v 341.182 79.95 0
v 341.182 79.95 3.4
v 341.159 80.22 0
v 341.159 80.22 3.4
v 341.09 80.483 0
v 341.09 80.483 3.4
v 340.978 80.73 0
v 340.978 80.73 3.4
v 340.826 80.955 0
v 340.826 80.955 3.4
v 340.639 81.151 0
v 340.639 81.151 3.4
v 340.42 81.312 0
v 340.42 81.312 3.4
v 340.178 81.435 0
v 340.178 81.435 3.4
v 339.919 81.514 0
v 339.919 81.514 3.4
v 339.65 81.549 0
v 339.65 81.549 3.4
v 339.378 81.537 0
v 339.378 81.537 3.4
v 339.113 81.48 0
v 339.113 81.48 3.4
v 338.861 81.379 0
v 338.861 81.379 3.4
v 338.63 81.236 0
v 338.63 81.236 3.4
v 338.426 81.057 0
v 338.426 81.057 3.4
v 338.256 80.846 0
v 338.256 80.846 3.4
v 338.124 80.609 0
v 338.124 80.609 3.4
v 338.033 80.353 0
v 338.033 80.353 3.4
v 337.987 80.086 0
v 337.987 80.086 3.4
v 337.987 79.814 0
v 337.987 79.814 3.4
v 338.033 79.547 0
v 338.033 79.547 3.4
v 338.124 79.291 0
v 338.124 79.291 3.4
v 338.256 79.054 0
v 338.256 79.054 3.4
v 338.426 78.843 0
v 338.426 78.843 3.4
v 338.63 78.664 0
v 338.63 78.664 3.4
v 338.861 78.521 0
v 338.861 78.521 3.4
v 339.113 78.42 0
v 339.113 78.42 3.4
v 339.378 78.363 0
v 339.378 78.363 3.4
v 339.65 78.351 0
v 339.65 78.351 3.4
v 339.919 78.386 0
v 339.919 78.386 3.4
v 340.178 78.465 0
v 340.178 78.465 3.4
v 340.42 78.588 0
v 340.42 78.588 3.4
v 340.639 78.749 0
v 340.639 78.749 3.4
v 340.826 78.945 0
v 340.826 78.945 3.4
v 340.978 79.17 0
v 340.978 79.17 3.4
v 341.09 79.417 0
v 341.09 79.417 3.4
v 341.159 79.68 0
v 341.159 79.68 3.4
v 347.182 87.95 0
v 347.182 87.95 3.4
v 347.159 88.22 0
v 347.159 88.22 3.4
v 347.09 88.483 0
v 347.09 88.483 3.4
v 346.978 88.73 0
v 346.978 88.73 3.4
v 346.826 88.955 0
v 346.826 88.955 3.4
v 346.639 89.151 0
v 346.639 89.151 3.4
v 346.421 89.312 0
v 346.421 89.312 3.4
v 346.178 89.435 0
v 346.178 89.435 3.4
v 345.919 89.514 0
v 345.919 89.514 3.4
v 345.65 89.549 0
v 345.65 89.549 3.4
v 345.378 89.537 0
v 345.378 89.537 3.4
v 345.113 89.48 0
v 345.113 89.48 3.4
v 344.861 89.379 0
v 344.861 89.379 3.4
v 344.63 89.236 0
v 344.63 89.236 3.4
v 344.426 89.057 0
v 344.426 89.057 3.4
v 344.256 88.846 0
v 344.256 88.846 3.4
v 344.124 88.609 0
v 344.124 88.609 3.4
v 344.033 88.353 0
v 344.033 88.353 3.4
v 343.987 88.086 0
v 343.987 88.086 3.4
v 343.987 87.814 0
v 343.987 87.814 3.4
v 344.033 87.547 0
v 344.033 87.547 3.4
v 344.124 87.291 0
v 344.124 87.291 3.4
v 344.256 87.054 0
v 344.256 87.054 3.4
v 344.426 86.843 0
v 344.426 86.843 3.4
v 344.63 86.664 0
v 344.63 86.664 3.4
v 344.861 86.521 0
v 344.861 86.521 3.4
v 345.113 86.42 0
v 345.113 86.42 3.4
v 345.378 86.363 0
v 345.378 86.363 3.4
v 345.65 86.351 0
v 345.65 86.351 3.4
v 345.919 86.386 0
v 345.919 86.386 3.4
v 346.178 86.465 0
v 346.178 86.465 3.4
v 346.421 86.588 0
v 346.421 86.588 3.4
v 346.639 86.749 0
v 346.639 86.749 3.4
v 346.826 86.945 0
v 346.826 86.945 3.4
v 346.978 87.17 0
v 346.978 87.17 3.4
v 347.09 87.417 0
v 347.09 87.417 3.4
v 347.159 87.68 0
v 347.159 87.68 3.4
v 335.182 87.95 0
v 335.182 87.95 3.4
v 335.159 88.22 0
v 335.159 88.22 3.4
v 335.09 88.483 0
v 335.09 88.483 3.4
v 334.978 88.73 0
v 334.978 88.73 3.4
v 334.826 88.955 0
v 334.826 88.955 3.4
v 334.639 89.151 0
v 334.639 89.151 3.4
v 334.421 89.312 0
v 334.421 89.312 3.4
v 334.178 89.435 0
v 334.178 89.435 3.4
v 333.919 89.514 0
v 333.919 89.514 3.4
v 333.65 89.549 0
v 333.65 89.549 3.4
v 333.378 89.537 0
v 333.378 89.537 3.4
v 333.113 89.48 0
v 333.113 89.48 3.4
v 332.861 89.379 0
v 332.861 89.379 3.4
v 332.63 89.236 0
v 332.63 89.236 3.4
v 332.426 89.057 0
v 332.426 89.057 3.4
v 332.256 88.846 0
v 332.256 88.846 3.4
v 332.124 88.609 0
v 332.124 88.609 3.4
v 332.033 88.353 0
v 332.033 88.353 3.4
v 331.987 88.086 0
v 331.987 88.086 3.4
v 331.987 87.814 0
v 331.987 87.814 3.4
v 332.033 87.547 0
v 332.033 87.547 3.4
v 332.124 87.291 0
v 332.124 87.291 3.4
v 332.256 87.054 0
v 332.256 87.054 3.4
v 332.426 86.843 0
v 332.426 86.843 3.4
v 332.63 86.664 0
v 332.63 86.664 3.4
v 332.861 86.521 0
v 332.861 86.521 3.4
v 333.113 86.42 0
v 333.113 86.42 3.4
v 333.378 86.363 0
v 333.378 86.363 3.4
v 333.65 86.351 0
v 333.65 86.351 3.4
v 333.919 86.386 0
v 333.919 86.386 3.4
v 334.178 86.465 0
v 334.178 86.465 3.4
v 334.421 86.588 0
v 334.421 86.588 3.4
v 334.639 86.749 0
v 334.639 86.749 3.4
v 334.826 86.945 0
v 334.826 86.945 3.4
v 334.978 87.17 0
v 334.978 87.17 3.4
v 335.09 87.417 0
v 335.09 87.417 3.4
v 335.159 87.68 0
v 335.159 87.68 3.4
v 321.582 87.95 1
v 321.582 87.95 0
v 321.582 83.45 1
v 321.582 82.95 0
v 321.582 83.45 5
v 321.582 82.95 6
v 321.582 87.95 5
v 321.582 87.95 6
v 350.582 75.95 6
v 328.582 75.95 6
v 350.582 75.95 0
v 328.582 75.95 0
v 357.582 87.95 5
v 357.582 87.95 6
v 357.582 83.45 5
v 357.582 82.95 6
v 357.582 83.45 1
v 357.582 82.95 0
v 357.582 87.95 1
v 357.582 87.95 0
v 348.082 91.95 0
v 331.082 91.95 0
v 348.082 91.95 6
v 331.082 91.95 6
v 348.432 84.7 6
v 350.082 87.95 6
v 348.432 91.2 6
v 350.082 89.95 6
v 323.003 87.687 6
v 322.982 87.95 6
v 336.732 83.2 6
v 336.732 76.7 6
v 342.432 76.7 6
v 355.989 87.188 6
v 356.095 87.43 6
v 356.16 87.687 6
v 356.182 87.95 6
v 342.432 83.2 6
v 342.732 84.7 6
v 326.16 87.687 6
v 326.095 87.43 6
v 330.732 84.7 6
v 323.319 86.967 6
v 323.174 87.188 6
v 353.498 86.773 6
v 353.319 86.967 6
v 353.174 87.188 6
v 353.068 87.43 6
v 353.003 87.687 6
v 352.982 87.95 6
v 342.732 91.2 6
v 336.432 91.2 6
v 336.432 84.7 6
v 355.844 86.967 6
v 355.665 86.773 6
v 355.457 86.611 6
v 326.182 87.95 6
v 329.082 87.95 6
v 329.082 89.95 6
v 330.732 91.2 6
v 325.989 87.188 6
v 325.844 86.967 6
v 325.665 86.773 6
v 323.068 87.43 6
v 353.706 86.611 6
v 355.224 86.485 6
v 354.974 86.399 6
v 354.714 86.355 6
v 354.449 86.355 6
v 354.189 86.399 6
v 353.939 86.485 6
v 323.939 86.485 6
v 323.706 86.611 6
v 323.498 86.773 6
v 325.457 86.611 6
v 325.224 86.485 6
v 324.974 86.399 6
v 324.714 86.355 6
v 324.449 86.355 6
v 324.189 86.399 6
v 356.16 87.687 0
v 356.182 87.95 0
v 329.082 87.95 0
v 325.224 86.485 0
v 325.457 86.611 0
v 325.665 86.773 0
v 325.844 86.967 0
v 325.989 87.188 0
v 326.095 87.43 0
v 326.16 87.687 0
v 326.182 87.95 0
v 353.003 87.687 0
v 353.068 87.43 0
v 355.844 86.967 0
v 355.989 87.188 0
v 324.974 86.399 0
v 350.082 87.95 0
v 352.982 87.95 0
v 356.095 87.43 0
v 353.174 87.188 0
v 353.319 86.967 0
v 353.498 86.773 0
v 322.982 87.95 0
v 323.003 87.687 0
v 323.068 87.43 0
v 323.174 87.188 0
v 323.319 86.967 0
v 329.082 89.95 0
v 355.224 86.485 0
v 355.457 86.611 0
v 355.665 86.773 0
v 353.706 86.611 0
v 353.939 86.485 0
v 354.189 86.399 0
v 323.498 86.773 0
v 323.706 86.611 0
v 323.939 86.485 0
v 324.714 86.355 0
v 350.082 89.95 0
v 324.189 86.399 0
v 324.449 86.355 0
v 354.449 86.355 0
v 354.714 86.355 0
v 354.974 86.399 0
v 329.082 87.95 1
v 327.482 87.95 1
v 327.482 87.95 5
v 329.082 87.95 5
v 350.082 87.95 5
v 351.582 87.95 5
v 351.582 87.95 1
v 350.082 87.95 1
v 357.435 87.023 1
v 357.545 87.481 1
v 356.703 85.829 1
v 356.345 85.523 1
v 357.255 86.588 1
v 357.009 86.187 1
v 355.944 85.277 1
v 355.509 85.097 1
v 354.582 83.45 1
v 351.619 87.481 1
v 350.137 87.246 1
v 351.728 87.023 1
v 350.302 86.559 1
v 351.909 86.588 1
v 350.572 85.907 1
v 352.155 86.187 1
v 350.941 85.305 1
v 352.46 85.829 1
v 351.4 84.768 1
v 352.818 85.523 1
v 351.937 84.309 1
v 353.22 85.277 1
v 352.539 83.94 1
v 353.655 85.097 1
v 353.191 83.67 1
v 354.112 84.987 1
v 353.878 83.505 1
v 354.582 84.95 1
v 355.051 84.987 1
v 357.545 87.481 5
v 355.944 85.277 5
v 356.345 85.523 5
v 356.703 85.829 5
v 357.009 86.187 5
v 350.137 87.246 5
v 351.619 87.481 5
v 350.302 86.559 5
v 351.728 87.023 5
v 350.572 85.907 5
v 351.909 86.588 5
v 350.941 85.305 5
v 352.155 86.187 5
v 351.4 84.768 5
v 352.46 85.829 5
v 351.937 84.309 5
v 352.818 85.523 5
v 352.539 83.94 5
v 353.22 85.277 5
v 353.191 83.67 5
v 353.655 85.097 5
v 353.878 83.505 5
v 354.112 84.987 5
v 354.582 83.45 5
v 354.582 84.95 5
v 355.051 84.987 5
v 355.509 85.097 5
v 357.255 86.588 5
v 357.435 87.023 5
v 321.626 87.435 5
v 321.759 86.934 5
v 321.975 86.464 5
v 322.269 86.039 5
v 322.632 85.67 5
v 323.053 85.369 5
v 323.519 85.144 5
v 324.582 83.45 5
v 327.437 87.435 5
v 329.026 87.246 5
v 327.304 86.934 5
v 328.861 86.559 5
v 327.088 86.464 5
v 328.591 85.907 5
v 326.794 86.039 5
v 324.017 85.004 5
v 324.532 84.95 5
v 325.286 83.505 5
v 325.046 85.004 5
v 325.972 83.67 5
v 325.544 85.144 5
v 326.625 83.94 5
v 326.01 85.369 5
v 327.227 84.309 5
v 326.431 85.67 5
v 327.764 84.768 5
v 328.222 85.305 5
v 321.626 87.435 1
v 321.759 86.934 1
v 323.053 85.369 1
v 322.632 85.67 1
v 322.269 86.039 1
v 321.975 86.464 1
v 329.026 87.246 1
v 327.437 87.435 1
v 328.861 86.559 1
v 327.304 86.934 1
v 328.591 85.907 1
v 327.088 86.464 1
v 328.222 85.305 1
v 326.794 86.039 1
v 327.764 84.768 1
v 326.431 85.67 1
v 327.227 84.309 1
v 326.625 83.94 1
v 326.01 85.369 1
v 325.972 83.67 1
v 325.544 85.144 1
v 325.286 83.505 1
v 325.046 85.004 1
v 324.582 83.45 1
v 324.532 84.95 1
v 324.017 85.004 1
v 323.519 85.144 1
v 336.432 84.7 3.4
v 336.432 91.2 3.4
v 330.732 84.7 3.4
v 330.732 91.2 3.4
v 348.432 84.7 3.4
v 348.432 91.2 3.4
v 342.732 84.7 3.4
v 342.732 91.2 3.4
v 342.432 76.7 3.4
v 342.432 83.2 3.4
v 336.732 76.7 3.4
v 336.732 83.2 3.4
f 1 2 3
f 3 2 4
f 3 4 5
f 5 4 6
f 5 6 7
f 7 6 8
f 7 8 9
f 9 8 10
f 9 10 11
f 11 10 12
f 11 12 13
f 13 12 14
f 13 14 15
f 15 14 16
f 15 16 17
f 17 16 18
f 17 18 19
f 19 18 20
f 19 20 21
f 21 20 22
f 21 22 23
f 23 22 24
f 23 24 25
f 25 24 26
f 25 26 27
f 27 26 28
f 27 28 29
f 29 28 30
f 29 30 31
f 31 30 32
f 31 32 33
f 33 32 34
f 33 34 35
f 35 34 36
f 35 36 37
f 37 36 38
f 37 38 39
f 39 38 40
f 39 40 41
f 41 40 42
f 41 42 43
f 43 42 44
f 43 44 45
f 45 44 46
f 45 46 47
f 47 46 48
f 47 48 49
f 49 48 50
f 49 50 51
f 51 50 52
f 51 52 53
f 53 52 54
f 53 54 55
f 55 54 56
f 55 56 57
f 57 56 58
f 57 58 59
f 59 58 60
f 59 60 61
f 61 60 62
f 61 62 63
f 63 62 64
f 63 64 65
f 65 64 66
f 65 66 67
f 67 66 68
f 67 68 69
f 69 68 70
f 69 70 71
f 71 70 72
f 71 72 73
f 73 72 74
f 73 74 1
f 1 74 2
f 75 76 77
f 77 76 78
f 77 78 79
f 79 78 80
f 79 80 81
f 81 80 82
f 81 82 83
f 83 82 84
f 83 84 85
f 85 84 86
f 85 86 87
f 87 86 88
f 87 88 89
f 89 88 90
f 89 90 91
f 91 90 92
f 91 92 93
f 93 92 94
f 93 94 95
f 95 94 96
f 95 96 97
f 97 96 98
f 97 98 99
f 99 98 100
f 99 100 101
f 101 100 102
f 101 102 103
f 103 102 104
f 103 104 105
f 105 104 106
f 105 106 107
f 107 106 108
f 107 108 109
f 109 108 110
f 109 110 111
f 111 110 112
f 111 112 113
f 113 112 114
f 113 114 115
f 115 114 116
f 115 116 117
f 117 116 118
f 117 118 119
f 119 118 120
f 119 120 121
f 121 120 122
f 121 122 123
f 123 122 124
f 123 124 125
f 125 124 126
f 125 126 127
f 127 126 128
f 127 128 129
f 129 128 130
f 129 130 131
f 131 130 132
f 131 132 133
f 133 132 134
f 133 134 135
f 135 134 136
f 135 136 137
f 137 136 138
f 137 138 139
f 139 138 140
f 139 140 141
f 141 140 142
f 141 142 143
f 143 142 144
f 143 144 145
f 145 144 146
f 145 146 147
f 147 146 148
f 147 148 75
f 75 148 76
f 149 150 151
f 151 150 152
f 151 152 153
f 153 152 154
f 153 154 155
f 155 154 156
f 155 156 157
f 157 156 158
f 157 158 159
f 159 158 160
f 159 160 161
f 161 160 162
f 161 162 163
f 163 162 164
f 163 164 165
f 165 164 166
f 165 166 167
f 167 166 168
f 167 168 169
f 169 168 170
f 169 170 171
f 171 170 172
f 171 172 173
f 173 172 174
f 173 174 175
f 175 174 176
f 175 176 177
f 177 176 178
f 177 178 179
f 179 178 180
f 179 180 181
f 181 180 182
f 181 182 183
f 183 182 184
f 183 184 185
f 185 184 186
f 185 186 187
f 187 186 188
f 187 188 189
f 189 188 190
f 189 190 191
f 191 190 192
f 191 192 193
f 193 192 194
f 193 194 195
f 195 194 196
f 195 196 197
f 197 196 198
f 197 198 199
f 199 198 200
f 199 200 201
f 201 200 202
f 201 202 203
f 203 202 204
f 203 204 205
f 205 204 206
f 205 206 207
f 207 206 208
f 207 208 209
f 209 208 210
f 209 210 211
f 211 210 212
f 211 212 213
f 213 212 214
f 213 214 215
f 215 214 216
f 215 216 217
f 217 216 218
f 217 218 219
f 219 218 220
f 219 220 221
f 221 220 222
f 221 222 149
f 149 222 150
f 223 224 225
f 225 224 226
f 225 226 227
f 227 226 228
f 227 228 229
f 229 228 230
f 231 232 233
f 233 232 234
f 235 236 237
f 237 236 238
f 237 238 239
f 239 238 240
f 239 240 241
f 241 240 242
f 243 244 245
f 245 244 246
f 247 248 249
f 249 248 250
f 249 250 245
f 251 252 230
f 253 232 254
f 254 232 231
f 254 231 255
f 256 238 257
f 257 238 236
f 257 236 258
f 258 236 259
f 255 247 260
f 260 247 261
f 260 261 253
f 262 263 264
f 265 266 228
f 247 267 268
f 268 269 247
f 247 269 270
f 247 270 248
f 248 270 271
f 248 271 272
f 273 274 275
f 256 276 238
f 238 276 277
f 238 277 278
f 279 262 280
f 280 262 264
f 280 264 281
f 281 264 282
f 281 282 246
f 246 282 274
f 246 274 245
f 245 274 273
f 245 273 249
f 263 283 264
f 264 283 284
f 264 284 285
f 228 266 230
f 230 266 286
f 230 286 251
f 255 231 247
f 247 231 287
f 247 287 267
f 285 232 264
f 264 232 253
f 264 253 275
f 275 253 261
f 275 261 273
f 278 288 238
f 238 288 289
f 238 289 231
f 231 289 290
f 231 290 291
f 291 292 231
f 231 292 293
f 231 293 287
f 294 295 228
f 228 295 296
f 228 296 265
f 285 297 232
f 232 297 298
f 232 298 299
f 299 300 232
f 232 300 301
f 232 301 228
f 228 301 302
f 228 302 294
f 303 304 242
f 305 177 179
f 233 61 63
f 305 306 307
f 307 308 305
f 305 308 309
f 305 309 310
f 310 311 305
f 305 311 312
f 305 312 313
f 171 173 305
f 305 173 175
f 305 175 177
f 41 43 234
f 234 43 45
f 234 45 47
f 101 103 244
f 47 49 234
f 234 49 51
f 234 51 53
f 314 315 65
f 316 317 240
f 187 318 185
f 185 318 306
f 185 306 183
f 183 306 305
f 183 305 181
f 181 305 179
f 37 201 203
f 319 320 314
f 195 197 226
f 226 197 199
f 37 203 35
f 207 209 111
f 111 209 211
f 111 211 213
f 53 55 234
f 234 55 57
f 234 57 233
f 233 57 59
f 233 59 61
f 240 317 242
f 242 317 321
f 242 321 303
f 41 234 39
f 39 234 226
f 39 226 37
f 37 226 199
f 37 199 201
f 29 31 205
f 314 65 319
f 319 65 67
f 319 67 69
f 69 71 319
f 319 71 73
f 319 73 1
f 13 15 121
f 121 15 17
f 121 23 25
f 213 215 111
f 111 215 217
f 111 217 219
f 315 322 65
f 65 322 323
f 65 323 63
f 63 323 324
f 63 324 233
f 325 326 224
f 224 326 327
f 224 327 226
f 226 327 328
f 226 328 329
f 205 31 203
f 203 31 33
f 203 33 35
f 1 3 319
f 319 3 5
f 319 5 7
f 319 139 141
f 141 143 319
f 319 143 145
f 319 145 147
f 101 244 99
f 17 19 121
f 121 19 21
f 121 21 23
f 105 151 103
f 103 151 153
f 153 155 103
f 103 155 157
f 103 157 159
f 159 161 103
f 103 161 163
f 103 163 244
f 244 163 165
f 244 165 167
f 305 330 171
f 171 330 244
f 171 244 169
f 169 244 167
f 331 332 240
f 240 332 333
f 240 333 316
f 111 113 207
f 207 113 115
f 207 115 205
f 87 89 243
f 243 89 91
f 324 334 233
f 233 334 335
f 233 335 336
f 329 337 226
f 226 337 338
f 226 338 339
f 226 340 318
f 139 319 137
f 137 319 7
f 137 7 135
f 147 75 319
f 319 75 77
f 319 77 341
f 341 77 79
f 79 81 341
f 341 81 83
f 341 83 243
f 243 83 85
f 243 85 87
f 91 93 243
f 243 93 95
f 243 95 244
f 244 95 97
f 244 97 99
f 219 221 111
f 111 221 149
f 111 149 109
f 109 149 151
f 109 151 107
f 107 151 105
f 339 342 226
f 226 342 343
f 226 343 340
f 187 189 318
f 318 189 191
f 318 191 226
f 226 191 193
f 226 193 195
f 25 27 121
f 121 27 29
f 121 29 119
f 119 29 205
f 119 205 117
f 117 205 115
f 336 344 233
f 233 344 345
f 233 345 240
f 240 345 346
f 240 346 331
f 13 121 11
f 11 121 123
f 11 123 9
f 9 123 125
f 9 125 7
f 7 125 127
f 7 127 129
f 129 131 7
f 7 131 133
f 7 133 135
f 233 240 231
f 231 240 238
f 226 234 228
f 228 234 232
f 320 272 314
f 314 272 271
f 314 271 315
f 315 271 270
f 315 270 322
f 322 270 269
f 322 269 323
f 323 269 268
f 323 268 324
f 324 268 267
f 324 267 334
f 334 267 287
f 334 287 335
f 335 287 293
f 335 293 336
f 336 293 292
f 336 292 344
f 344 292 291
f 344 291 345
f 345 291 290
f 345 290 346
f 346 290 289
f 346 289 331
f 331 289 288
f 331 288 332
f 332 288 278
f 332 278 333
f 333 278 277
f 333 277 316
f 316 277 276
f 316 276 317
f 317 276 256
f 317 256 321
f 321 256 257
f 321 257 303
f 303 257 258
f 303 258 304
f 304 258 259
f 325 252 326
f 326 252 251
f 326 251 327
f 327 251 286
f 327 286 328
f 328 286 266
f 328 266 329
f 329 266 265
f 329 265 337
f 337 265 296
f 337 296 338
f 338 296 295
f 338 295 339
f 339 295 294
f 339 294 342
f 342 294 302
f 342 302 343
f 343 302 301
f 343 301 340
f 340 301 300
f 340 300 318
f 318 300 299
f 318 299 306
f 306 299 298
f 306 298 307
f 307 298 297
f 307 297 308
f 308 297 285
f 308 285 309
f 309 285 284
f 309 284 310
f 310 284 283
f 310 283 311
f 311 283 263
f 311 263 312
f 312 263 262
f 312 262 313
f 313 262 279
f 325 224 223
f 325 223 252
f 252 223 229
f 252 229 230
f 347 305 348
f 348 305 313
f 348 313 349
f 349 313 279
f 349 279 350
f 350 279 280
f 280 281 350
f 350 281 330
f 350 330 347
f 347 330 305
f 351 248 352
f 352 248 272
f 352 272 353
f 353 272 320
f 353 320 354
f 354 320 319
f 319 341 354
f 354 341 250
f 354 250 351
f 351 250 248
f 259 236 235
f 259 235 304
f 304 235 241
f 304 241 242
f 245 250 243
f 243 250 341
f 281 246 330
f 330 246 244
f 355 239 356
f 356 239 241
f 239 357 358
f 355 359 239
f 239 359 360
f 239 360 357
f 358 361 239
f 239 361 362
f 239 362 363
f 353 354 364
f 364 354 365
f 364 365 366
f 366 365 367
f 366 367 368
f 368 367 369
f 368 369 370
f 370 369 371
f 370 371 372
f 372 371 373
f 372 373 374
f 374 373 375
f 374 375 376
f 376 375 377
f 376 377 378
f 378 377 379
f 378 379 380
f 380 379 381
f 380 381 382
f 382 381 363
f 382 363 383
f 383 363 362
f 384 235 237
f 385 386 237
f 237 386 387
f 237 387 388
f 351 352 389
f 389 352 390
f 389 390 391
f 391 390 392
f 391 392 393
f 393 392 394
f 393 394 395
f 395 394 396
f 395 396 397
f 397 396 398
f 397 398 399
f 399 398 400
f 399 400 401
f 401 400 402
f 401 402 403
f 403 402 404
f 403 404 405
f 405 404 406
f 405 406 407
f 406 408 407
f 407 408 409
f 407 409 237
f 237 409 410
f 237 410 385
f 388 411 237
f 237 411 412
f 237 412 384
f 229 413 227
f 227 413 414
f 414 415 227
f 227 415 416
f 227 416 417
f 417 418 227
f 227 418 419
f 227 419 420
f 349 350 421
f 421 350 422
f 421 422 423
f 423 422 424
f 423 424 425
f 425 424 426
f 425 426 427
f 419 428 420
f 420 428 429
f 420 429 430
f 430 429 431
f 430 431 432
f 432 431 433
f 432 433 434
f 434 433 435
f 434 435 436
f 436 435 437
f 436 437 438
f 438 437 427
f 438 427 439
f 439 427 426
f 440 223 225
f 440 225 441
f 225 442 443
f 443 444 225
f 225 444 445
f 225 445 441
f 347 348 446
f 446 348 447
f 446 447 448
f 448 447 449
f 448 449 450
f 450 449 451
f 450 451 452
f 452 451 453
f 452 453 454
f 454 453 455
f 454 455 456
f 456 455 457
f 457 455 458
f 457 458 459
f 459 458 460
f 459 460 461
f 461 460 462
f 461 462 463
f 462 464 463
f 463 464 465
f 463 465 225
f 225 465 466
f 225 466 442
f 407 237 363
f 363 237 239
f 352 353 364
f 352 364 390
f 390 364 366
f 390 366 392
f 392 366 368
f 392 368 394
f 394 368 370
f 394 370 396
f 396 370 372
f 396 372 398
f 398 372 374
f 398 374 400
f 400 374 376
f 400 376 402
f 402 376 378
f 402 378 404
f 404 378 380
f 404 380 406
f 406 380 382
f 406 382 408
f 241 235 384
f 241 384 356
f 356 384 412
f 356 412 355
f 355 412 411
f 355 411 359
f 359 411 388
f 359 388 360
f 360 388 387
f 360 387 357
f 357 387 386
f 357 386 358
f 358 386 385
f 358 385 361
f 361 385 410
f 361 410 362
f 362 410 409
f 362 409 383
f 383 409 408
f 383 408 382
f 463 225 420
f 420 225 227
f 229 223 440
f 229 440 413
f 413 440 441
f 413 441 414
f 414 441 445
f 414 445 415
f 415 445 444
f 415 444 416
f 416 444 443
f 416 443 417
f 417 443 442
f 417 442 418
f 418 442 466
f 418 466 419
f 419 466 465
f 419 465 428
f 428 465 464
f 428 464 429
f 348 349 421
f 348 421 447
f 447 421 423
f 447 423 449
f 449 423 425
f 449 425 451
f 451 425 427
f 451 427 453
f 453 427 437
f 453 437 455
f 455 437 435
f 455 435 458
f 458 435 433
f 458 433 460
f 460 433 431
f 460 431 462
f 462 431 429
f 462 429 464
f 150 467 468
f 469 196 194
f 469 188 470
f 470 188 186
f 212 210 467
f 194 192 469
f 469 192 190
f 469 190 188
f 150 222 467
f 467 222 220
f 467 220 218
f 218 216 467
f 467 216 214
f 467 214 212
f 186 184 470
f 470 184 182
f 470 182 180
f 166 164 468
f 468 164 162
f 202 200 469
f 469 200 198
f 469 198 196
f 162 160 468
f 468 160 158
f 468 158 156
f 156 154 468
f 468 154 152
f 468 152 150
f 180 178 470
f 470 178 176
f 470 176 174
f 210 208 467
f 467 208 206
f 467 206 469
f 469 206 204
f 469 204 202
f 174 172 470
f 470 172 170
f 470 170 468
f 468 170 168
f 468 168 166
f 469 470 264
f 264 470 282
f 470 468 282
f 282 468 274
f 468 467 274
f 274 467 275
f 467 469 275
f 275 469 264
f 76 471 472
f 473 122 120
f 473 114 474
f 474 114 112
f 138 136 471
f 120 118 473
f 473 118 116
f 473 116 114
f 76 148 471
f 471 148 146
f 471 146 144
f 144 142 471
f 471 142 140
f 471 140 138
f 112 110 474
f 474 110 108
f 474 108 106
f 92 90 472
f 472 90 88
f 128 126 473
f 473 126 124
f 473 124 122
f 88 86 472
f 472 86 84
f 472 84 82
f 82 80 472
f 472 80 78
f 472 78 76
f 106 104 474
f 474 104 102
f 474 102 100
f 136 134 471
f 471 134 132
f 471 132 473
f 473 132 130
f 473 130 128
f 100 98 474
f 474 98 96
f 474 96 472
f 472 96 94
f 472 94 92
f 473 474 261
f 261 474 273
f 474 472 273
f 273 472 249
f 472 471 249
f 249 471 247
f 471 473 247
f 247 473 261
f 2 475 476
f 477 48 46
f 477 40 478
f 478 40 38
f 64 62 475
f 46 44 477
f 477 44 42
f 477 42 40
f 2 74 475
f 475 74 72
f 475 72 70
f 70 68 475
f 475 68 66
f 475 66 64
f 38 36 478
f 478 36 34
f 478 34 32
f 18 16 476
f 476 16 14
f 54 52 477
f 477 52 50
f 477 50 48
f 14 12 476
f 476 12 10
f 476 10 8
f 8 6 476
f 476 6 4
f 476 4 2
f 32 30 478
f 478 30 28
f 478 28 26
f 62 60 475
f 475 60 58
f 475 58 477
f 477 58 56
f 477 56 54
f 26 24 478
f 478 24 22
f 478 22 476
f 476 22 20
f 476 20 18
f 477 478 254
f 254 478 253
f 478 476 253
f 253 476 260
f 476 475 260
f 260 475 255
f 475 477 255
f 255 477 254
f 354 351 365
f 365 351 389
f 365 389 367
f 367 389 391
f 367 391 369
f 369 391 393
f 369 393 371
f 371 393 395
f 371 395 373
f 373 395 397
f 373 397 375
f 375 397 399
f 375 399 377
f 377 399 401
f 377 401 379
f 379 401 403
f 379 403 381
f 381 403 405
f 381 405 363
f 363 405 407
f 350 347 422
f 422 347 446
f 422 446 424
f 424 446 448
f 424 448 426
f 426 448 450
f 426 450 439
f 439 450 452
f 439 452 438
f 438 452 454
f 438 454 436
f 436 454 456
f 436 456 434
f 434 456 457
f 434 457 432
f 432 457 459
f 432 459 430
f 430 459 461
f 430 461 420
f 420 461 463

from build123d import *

# Parameters (mm, degrees)
SKETCH1_W           = 36
SKETCH1_H           = 16
BOSS_EXTRUDE1_DEPTH = 6
SKETCH2_R           = 1.6
CUT_EXTRUDE1_DEPTH  = 6
CHAMFER1_SIZE       = 7
SKETCH4_R           = 1.6
CUT_EXTRUDE2_DEPTH  = 6
SKETCH5_W           = 7.5
SKETCH5_H           = 4
CUT_EXTRUDE3_DEPTH  = 6
CHAMFER2_SIZE       = 2
SKETCH6_W           = 1.6
SKETCH6_H           = 4
SKETCH6_W_2         = 1.5
CUT_EXTRUDE4_DEPTH  = 3
SKETCH7_W           = 4
SKETCH7_H           = 1.5
CUT_EXTRUDE6_DEPTH  = 7.5
FILLET1_R           = 3
FILLET2_R           = 3
SKETCH8_W           = 4
SKETCH8_H           = 1.5
CUT_EXTRUDE7_DEPTH  = 7.5
FILLET3_R           = 3
SKETCH10_W          = 5.7
SKETCH10_H          = 6.5
CUT_EXTRUDE8_DEPTH  = 2.6
FILLET4_R           = 4.5


# Some blends are built 0.0001 mm under size
with BuildPart() as part:
    # Sketch1 → Boss-Extrude1 (new body)
    with BuildSketch(Plane.XY):
        with Locations((339.581598667, 83.950008978)):
            Rectangle(SKETCH1_W, SKETCH1_H)
    extrude(amount=BOSS_EXTRUDE1_DEPTH)

    # Sketch2 → Cut-Extrude1 (cut)
    with BuildSketch(Plane.XY.offset(6)):
        with Locations((333.581598667, 87.950008978)):
            Circle(SKETCH2_R)
        with Locations((345.581598667, 87.950008978)):
            Circle(SKETCH2_R)
        with Locations((339.581598667, 79.950008978)):
            Circle(SKETCH2_R)
    extrude(amount=-CUT_EXTRUDE1_DEPTH, mode=Mode.SUBTRACT)

    # Chamfer1
    chamfer1_edges = [part.edges().sort_by_distance(p)[0] for p in [
        (357.581598667, 75.950008978, 3),
        (321.581598667, 75.950008978, 3),
    ]]
    chamfer(chamfer1_edges, length=CHAMFER1_SIZE)

    # Sketch4 → Cut-Extrude2 (cut)
    with BuildSketch(Plane.XY.offset(6)):
        with Locations((324.581598667, 87.950008978)):
            Circle(SKETCH4_R)
        with Locations((354.581598667, 87.950008978)):
            Circle(SKETCH4_R)
    extrude(amount=-CUT_EXTRUDE2_DEPTH, mode=Mode.SUBTRACT)

    # Sketch5 → Cut-Extrude3 (cut)
    with BuildSketch(Plane.XY.offset(6)):
        with Locations((325.331598667, 89.950008978)):
            Rectangle(SKETCH5_W, SKETCH5_H)
        with Locations((353.831598667, 89.950008978)):
            Rectangle(SKETCH5_W, SKETCH5_H)
    extrude(amount=-CUT_EXTRUDE3_DEPTH, mode=Mode.SUBTRACT)

    # Chamfer2
    chamfer2_edges = [part.edges().sort_by_distance(p)[0] for p in [
        (329.081598667, 91.950008978, 3),
        (350.081598667, 91.950008978, 3),
    ]]
    chamfer(chamfer2_edges, length=CHAMFER2_SIZE)

    # Sketch6 → Cut-Extrude4 (cut)
    with BuildSketch(Plane(origin=(0, 87.950008978, 0), x_dir=(1, 0, 0), z_dir=(0, 1, 0))):
        with Locations((328.281598667, -3)):
            Rectangle(SKETCH6_W, SKETCH6_H)
        with Locations((350.831598667, -3)):
            Rectangle(SKETCH6_W_2, SKETCH6_H)
    extrude(amount=-CUT_EXTRUDE4_DEPTH, mode=Mode.SUBTRACT)

    # Sketch7 → Cut-Extrude6 (cut)
    with BuildSketch(Plane(origin=(357.581598667, 0, 0), x_dir=(0, 0, -1), z_dir=(1, 0, 0))):
        with Locations((-3, 84.200008978)):
            Rectangle(SKETCH7_W, SKETCH7_H)
    extrude(amount=-CUT_EXTRUDE6_DEPTH, mode=Mode.SUBTRACT)

    # Fillet1
    fillet1_edges = [part.edges().sort_by_distance(p)[0] for p in [
        (351.581598667, 84.950008978, 3),
    ]]
    fillet(fillet1_edges, radius=FILLET1_R - 0.0001)  # a hair under: the kernel refuses the full size

    # Fillet2
    fillet2_edges = [part.edges().sort_by_distance(p)[0] for p in [
        (357.581598667, 84.950008978, 3),
    ]]
    fillet(fillet2_edges, radius=FILLET2_R - 0.0001)  # a hair under: the kernel refuses the full size

    # Sketch8 → Cut-Extrude7 (cut)
    with BuildSketch(Plane.ZY.offset(-321.581598667)):
        with Locations((3, 84.200008978)):
            Rectangle(SKETCH8_W, SKETCH8_H)
    extrude(amount=-CUT_EXTRUDE7_DEPTH, mode=Mode.SUBTRACT)

    # Fillet3
    # the kernel refuses this fillet: 3 mm, written as the material it takes off along each edge
    with BuildSketch(Plane(origin=(327.481598667, 84.950008978, 1), x_dir=(0, 1, 0), z_dir=(0, 0, 1)), Plane(origin=(321.581598667, 84.950008978, 5), x_dir=(0, 1, 0), z_dir=(0, 0, -1))) as fillet3_piece_1:
        with BuildLine():
            CenterArc((FILLET3_R, FILLET3_R), FILLET3_R, 180, 90)
            Line((0, FILLET3_R), (0, 0))
            Line((0, 0), (FILLET3_R, 0))
        make_face()
    extrude(amount=4, mode=Mode.SUBTRACT)

    # Sketch10 → Cut-Extrude8 (cut)
    with BuildSketch(Plane.XY.offset(6)):
        with Locations((333.581598667, 87.950008978)):
            Rectangle(SKETCH10_W, SKETCH10_H)
        with Locations((345.581598667, 87.950008978)):
            Rectangle(SKETCH10_W, SKETCH10_H)
        with Locations((339.581598667, 79.950008978)):
            Rectangle(SKETCH10_W, SKETCH10_H)
    extrude(amount=-CUT_EXTRUDE8_DEPTH, mode=Mode.SUBTRACT)

    # Fillet4
    fillet4_edges = [part.edges().sort_by_distance(p)[0] for p in [
        (350.081598667, 83.450008978, 3),
        (329.081598667, 83.450008978, 3),
    ]]
    fillet(fillet4_edges, radius=FILLET4_R)


solid = part.part
